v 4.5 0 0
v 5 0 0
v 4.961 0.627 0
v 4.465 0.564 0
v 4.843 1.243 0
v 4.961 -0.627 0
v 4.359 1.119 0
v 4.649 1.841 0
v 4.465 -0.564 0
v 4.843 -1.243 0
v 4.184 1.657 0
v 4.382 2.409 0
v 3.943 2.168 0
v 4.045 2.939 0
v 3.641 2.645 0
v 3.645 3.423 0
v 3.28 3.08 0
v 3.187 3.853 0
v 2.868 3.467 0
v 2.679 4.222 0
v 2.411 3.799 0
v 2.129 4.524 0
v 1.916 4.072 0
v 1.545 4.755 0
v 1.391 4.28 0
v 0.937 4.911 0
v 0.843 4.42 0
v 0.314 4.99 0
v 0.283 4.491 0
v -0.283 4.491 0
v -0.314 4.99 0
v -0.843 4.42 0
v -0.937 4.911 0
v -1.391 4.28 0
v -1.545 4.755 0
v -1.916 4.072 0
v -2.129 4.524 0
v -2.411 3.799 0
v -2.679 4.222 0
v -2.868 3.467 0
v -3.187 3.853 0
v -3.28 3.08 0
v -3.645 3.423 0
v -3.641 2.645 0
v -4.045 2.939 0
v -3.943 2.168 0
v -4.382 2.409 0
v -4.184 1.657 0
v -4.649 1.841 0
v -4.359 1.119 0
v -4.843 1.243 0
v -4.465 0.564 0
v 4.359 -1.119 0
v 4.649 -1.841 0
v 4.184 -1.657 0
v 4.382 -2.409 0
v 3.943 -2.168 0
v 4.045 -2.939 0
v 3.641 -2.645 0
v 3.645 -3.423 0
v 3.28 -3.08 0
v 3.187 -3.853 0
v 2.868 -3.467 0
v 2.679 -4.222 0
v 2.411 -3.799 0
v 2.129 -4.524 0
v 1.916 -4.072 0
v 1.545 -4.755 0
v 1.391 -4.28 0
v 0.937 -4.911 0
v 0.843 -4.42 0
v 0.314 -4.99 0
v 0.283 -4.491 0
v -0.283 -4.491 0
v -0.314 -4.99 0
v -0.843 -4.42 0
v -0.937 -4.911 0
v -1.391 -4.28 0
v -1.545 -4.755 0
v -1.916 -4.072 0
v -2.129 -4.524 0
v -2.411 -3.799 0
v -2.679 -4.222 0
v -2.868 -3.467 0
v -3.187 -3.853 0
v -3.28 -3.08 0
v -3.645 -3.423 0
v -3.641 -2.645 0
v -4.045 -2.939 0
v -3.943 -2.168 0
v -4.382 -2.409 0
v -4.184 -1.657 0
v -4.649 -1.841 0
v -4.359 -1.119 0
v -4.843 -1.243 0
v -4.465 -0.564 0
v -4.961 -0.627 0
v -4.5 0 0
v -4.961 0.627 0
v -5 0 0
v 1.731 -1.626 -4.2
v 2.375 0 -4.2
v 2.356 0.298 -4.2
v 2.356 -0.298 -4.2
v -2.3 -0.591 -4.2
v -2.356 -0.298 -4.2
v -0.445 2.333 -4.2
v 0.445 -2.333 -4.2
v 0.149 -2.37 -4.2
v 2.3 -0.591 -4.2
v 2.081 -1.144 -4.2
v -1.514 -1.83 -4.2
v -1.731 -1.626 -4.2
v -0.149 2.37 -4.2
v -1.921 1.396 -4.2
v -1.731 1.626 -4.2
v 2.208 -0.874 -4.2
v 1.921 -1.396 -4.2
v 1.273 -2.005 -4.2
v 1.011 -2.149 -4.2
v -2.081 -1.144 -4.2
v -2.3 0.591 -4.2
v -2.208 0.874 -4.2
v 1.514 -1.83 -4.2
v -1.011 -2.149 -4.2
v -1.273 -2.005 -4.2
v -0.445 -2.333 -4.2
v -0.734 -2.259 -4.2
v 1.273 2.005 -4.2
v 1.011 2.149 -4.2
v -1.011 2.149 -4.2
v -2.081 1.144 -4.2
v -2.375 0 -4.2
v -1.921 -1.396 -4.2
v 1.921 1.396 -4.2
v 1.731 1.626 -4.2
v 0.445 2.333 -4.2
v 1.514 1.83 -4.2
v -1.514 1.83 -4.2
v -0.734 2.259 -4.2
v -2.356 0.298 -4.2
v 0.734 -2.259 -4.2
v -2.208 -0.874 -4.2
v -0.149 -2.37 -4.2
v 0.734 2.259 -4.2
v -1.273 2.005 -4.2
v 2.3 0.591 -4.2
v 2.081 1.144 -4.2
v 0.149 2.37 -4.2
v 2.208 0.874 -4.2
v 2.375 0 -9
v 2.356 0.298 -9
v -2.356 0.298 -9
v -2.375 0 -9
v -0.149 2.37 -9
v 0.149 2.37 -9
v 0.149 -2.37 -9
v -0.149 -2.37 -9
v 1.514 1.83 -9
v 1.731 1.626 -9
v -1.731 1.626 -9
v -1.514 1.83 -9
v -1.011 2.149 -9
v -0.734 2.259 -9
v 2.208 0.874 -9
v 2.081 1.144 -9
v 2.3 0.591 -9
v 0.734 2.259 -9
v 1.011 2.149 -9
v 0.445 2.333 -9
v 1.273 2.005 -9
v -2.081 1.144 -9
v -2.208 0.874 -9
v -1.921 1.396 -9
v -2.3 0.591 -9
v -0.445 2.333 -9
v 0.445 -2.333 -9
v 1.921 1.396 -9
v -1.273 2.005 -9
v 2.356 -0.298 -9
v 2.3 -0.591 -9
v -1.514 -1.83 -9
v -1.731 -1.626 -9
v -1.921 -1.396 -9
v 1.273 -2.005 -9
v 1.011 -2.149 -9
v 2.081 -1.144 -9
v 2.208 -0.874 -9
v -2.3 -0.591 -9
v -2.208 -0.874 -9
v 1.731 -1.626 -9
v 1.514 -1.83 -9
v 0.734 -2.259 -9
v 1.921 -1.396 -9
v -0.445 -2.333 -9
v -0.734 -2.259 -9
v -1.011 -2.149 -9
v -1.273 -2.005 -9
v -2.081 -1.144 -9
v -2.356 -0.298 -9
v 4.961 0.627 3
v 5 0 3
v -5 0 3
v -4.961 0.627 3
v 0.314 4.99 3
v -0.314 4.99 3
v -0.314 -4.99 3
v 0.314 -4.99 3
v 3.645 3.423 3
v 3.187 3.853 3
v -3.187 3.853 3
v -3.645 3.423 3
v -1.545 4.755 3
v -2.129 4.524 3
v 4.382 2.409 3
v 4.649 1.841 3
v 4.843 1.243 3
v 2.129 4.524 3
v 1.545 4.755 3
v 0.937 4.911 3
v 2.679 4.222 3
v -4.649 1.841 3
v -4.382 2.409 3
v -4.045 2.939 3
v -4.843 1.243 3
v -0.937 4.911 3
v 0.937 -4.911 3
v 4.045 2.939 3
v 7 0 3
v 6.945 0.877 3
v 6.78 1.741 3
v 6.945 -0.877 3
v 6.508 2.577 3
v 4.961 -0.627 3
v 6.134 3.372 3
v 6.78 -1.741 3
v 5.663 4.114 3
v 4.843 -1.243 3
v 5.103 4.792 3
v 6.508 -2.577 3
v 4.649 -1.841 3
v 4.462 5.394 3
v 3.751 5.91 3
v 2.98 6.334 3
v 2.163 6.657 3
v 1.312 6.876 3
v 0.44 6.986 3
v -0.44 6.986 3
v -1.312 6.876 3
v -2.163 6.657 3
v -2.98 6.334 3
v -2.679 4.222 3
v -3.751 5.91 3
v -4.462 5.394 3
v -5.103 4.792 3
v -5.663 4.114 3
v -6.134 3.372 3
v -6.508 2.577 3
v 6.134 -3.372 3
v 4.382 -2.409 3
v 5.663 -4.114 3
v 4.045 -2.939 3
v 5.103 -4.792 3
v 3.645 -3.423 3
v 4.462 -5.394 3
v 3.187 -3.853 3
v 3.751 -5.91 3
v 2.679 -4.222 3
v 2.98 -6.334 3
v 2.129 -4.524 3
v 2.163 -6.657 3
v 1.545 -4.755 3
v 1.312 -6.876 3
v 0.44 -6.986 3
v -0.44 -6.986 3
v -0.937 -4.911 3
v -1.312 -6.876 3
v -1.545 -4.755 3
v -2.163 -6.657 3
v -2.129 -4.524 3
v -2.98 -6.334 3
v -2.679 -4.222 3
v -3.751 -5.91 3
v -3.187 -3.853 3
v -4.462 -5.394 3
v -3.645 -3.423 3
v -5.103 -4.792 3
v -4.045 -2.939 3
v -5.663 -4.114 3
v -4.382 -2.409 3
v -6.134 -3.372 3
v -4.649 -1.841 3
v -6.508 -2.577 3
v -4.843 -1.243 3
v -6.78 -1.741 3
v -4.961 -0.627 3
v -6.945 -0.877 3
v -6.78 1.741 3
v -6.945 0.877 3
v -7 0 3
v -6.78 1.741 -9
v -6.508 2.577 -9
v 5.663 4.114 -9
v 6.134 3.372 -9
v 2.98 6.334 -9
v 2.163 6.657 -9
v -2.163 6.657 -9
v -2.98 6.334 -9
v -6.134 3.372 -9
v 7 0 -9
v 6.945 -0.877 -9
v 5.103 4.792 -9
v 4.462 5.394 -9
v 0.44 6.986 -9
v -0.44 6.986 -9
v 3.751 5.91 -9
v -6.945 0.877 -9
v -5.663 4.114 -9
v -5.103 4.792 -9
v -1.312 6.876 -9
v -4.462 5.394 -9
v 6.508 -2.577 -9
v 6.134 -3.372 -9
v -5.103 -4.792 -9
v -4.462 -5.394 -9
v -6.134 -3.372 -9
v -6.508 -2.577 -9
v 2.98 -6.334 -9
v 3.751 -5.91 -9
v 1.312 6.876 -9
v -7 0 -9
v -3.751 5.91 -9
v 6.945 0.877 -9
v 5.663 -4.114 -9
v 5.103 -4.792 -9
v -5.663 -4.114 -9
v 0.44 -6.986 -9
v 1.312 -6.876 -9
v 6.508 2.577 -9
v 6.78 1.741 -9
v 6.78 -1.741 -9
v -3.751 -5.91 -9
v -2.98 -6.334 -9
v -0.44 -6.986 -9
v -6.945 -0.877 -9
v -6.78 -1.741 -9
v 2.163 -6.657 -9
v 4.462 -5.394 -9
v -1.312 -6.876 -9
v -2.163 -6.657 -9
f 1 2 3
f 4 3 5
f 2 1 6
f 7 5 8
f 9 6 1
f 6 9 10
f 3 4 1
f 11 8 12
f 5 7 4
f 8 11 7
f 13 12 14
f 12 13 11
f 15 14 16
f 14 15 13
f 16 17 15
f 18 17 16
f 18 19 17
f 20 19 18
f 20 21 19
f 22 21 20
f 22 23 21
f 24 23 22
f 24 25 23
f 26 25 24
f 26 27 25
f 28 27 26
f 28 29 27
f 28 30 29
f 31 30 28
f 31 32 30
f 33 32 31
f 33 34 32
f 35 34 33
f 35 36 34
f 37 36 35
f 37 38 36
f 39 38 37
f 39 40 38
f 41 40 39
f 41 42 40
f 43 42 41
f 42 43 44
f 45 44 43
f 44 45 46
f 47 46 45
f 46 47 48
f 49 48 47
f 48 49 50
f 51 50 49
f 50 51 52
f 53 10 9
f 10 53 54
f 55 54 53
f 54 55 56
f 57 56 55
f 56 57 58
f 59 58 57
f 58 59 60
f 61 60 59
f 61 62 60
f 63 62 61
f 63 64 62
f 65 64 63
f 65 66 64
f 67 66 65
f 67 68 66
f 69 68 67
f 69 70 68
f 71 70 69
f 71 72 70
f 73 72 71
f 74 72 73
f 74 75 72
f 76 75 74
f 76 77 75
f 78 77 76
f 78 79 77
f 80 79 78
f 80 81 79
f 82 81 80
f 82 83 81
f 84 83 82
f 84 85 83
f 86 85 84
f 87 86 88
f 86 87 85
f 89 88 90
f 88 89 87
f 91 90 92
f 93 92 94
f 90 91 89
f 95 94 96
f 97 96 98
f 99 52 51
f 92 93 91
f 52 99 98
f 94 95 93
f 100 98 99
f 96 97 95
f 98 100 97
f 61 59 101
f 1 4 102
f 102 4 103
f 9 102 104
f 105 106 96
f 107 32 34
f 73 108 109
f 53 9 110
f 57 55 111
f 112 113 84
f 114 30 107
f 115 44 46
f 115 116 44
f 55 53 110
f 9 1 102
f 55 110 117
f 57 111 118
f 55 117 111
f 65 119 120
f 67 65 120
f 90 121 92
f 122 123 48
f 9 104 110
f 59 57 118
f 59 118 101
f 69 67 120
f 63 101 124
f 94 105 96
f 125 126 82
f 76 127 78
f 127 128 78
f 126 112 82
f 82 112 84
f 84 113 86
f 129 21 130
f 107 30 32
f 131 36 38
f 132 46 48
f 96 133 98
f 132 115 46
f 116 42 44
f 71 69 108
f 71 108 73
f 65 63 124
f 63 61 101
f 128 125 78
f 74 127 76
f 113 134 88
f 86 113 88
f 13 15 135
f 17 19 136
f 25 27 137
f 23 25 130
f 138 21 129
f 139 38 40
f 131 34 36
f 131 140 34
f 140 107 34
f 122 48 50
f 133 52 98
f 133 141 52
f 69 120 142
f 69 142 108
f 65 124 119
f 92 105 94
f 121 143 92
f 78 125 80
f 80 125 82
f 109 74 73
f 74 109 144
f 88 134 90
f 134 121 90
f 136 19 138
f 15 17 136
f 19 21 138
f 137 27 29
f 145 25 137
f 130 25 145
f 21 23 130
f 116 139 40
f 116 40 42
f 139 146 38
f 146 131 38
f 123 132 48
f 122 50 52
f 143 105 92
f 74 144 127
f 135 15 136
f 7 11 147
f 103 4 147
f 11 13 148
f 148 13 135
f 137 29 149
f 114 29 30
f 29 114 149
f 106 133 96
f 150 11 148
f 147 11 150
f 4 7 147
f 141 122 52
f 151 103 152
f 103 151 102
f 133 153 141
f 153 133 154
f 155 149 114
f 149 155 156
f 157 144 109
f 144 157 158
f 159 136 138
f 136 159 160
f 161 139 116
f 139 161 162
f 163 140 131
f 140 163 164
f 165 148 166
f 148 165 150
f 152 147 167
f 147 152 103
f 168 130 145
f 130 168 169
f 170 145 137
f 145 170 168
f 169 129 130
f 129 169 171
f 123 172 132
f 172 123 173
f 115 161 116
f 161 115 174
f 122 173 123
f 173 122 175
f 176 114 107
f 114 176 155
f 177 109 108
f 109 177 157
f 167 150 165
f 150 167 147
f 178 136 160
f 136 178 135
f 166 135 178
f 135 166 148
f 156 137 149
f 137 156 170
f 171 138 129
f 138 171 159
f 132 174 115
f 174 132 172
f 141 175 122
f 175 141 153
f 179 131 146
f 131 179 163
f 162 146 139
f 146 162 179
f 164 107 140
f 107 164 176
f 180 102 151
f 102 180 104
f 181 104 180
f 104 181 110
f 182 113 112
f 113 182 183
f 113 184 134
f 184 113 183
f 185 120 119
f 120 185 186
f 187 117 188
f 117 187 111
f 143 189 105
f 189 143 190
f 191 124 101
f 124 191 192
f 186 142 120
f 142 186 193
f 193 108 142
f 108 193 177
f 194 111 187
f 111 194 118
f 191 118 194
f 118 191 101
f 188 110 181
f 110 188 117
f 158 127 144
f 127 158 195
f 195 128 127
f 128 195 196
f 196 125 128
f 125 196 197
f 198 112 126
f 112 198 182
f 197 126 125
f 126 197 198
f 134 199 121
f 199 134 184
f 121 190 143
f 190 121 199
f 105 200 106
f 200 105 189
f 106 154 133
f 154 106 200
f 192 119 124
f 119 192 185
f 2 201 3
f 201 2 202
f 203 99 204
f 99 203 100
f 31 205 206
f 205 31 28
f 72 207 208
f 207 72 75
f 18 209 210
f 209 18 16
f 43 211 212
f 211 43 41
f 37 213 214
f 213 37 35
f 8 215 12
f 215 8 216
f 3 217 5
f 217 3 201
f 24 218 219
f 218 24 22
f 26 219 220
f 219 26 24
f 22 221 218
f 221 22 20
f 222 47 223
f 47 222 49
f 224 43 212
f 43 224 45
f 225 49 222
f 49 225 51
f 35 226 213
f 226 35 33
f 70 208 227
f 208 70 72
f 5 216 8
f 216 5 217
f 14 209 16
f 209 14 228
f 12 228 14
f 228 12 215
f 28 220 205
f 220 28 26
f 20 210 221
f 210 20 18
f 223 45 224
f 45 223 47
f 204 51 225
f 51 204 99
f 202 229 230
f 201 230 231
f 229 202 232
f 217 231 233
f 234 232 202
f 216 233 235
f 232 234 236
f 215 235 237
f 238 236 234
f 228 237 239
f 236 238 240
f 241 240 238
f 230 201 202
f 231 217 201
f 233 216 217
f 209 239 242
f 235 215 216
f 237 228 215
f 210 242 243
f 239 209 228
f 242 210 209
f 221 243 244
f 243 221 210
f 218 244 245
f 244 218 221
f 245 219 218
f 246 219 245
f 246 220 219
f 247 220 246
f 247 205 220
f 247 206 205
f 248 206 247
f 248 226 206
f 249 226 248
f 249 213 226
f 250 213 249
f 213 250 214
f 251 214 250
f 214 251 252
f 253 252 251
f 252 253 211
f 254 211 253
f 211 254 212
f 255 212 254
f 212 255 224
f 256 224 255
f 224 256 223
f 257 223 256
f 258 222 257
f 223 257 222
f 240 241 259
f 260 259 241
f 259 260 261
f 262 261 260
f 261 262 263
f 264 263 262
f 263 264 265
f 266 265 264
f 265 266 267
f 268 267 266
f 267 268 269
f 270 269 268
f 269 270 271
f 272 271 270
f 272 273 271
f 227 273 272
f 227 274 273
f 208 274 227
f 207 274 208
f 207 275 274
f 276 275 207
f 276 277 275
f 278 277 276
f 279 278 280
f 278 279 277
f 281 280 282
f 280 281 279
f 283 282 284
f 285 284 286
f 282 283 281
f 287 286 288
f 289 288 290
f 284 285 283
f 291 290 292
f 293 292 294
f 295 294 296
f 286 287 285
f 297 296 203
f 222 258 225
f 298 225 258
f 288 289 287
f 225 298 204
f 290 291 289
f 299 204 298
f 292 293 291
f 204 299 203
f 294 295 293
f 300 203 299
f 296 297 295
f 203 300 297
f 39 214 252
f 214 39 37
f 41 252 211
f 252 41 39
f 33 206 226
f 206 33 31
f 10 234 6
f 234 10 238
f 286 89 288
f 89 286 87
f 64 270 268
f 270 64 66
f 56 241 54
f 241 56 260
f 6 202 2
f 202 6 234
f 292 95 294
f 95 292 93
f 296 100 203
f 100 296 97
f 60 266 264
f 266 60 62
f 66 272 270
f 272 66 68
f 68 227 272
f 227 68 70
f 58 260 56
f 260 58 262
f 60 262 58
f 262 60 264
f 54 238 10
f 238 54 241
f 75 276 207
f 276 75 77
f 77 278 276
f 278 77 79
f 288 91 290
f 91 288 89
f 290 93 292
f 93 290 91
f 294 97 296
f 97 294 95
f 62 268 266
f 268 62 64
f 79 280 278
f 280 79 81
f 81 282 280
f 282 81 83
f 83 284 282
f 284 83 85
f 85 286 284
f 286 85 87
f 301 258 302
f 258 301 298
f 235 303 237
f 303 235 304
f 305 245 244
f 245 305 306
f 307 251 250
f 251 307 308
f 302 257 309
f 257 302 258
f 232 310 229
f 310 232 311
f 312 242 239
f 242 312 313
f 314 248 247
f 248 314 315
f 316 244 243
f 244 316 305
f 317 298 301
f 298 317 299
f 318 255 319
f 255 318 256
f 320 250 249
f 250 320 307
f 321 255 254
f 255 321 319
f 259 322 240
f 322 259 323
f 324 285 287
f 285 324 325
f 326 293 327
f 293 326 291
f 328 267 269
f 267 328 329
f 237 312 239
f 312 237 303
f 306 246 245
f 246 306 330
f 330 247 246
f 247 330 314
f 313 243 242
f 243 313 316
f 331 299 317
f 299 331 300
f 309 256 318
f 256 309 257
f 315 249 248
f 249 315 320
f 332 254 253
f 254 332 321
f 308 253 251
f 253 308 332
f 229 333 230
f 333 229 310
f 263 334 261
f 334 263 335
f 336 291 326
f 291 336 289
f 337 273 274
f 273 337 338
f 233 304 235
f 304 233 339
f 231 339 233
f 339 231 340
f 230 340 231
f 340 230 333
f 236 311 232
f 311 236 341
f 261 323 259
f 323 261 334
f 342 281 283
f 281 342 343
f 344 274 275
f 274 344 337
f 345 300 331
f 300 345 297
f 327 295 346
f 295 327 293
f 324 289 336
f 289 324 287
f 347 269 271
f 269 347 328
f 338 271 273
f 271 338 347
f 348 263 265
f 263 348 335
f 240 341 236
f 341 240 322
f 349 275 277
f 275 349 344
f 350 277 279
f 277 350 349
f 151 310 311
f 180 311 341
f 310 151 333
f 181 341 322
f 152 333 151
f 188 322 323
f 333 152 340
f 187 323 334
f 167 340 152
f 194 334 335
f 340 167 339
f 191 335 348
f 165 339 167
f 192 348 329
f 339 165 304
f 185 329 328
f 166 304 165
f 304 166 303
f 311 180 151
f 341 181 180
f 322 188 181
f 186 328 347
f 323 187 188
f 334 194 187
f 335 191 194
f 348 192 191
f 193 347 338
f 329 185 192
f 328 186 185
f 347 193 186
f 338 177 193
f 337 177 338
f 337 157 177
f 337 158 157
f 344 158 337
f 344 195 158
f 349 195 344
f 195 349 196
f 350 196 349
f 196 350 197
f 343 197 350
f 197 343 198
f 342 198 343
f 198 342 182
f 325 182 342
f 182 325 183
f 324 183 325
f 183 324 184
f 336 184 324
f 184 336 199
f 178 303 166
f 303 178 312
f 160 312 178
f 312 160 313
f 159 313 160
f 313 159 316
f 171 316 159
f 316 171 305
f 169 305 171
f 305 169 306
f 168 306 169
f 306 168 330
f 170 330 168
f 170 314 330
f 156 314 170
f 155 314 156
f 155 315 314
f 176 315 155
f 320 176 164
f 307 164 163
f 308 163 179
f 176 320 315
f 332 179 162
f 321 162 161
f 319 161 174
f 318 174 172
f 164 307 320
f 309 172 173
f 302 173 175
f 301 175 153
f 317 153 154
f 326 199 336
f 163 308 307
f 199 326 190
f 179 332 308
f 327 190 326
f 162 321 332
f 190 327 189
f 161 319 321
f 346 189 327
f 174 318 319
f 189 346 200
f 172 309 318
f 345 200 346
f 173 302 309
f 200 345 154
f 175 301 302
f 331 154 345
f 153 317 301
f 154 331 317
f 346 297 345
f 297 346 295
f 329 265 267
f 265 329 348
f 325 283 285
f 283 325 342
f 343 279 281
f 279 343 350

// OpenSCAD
$fn = 50;


difference() {
	union() {
		translate(v = [0, 0, -9.0000000000]) {
			cylinder(h = 12, r = 7.0000000000);
		}
	}
	union() {
		translate(v = [0, 0, 0]) {
			rotate(a = [0, 0, 0]) {
				difference() {
					union() {
						translate(v = [0, 0, -12.0000000000]) {
							cylinder(h = 12, r = 2.2500000000);
						}
						translate(v = [0, 0, -4.2000000000]) {
							cylinder(h = 4.2000000000, r1 = 2.3750000000, r2 = 4.5000000000);
						}
						translate(v = [0, 0, -12.0000000000]) {
							cylinder(h = 12, r = 2.3750000000);
						}
						translate(v = [0, 0, -12.0000000000]) {
							cylinder(h = 12, r = 2.2500000000);
						}
					}
					union();
				}
			}
		}
		#cylinder(h = 3, r = 5.0000000000);
	}
}
